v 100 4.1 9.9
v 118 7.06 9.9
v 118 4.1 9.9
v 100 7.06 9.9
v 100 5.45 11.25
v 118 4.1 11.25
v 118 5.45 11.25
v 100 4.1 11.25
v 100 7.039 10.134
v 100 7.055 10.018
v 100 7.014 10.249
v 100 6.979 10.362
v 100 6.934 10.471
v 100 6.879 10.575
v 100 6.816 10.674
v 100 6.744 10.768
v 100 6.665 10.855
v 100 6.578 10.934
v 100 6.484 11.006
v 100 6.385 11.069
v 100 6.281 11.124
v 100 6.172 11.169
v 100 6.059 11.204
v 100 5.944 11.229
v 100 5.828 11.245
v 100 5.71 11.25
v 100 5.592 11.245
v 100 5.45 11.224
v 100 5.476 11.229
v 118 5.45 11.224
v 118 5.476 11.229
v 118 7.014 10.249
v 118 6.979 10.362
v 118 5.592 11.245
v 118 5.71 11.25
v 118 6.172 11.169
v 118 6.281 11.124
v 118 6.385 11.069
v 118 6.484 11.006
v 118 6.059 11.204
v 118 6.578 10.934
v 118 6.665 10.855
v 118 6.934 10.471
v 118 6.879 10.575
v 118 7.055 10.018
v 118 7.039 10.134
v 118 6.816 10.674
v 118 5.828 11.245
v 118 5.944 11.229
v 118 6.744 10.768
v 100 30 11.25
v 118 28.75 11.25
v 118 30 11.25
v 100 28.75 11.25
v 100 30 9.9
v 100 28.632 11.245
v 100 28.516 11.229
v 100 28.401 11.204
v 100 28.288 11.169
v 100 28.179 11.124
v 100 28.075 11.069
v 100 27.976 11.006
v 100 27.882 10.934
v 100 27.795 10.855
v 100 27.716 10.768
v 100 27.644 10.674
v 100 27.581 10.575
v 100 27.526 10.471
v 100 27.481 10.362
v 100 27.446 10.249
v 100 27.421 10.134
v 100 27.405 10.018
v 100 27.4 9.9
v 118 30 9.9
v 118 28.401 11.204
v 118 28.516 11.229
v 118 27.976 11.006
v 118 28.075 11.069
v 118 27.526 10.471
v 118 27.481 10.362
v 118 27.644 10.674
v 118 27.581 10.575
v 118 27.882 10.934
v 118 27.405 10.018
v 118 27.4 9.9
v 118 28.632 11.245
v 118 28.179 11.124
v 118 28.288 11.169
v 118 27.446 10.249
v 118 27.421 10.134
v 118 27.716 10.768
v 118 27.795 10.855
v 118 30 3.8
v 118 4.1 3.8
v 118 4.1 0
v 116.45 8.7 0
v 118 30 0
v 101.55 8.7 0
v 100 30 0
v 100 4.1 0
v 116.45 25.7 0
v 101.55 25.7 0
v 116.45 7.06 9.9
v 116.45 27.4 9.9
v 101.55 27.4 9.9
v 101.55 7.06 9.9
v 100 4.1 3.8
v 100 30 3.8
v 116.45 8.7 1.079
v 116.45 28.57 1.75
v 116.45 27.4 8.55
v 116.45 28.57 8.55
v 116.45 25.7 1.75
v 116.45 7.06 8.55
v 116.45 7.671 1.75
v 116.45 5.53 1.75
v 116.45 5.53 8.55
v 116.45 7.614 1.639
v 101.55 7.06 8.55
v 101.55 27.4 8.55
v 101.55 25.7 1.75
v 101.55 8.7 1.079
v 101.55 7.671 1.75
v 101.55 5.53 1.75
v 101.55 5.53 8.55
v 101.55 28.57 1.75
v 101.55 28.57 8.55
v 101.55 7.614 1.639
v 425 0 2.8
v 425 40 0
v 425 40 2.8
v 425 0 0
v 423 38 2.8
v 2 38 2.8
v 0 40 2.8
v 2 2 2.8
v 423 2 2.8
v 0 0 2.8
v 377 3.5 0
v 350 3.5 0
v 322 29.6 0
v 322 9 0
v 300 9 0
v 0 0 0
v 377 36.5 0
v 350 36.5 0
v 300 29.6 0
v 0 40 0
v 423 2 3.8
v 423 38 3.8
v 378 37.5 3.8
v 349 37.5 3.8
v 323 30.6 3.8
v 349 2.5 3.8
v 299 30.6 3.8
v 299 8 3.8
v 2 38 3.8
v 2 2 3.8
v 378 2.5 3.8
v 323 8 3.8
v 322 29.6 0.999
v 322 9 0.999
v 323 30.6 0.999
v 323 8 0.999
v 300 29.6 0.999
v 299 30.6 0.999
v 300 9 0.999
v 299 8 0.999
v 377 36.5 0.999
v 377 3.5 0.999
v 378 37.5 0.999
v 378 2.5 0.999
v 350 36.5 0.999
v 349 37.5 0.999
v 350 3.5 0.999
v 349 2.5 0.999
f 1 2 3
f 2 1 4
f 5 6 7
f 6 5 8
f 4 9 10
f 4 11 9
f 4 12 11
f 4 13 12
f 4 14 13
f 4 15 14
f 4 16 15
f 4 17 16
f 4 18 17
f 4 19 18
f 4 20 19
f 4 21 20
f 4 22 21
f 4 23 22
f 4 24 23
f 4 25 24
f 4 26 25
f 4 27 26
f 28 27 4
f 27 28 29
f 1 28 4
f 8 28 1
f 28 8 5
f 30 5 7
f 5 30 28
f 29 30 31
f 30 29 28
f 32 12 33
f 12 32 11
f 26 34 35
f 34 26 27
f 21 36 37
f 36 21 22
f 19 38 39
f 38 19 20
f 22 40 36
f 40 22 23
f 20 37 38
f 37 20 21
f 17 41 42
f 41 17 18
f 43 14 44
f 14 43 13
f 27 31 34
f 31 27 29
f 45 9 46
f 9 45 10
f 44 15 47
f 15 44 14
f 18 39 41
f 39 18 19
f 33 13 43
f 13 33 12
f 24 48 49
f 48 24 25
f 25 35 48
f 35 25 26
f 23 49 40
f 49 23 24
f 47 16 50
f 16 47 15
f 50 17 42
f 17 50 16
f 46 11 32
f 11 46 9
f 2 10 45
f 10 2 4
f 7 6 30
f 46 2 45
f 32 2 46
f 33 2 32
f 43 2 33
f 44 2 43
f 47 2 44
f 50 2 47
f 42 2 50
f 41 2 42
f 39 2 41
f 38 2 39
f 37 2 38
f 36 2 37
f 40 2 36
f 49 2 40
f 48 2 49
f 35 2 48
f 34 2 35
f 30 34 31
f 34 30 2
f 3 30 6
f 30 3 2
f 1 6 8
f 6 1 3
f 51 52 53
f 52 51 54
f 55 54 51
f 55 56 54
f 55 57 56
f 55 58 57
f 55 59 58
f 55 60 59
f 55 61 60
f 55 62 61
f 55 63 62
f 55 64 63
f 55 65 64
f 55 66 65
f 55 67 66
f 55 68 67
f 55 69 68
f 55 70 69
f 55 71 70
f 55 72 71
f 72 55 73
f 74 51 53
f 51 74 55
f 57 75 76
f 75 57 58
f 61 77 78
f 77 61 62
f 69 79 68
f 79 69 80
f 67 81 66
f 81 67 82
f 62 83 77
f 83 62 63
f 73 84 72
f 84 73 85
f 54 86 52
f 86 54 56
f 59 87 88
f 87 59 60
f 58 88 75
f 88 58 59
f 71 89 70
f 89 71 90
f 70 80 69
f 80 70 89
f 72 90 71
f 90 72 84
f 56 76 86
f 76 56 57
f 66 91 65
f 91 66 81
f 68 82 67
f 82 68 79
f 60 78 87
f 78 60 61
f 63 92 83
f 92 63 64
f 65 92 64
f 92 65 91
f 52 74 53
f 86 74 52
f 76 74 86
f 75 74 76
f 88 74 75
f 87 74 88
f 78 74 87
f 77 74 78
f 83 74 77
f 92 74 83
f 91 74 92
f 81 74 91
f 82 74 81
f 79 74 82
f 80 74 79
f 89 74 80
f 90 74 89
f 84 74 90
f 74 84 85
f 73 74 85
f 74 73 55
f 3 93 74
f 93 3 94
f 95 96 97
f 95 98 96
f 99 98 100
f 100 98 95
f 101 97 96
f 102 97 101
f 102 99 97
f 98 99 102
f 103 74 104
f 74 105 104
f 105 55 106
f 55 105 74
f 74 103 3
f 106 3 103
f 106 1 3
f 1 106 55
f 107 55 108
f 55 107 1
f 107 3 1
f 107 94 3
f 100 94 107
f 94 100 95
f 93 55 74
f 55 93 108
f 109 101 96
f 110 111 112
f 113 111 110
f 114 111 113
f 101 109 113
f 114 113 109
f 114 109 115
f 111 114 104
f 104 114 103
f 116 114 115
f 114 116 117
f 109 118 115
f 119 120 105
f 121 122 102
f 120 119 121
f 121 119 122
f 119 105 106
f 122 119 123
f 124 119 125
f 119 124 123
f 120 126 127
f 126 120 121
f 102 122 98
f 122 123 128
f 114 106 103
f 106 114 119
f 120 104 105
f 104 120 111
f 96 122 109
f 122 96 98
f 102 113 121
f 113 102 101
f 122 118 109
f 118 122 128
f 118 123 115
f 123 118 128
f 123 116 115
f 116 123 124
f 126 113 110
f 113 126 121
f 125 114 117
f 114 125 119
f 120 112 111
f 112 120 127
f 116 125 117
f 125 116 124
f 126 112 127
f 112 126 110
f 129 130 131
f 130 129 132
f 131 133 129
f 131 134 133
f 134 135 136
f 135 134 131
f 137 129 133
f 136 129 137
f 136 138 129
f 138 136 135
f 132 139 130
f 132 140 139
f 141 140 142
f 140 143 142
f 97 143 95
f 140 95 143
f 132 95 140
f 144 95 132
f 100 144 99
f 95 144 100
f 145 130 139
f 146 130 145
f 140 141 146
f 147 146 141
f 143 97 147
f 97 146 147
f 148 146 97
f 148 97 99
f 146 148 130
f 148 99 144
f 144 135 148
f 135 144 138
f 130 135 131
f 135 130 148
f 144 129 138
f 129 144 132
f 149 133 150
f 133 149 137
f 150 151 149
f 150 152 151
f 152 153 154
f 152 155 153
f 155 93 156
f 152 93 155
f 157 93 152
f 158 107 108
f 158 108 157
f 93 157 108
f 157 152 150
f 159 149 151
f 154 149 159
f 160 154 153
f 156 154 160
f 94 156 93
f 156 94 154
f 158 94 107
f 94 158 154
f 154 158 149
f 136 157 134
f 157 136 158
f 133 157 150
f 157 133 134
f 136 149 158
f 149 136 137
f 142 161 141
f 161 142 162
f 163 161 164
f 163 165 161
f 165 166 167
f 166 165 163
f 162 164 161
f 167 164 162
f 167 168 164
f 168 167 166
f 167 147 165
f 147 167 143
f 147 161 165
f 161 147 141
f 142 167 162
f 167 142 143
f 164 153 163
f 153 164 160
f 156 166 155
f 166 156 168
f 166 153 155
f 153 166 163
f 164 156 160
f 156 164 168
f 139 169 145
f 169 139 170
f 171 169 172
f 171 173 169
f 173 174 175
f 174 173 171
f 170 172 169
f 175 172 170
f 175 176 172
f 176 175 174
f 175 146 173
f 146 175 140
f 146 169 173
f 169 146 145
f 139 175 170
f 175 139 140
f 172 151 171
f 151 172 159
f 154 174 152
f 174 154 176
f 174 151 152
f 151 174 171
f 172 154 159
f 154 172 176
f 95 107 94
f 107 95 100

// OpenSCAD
// file: rj45_keystone_receiver.scad
$fa = 5;
$fs = 0.01;

/*
 * The RJ45 keystone receiver
 */
// adjustments to original
clip_adjustment =0.9;   // some keystone jacks fit too tight so we add a little here
exterior_slot_adjustment = 3.4; // original 2.6

// the following have not been changed
outside_width=18;
outside_height=25 + clip_adjustment;
outside_depth=9.9;
outside_wall = 1.55;
inside_width = outside_width-(outside_wall*2);
inside_height= outside_height-5.56; //19.44;
inside_cutout_height = outside_height - 2.86;
inside_cutout_depth = outside_depth - 3.1;
exterior_slot = 7.9;
exterior_notch_height = 17.0;
exterior_notch_depth = outside_depth - 2.7;
exterior_slot_height = outside_height - 8.75;
top_clip_bar = outside_height - 2.96 ;

module rj45Receiver()
{
    difference() {
        cube([outside_width, outside_height, outside_depth]);
        translate([outside_wall, 2.6, -0.001]) {
            cube([inside_width, inside_height, exterior_slot]);
        }
        // exterior slot
        translate([outside_wall, exterior_slot_adjustment+clip_adjustment,
                exterior_slot]) {
            cube([inside_width, exterior_notch_height, 2.001]);
        }
        // exterior_notch
        translate([outside_wall, exterior_notch_height+clip_adjustment,
                exterior_notch_depth]) {
            rotate(v=[1, 0, 0], a=-27.3) 
                cube([inside_width, 3.5, 3]);
        }
        // interior cutout
        translate([outside_wall, 1.43, 1.35]) {
            cube([inside_width, inside_cutout_height, inside_cutout_depth]);
        }
    }
    // top clip bar
    translate([0, top_clip_bar, -1.35]) {
        intersection() {
            cube([outside_width, 2.96, 1.35]);
            union() {
                translate([0, 1.61, 0]) {
                    cube([20.42, 1.61, 1.35]);
                }
                translate([0, 1.35, 1.35]) {
                    rotate(v=[0, 1, 0], a=90) {
                        cylinder(h=20.42, r=1.35);
                    }
                }
            }
        }
    }
    // bottom clip bar
    translate([0, 0, -1.35]) {
        intersection() {
            cube([outside_width, outside_wall*2, 1.35]);
            union() {
                cube([20.42, 1.25, 1.35]);
                translate([0, 1.25, 1.35]) {
                    rotate(v=[0, 1, 0], a=90) {
                        cylinder(h=20.42, r=1.35);
                    }
                }
            }
        }
    }
}

// these are sometimes needed when fitting the jacks into projects
function rj45_width() = outside_width;
function rj45_height() = outside_height;
function rj45_depth() = outside_depth;

 // So a hole can be cut for the keystone socket
module rj45VolumeBlock() {
    cube([outside_width, outside_height, outside_depth]);
}

rotate([0,180,0]) 
    rj45Receiver();
// main file
use <rj45_keystone_receiver.scad>;

color("red")
rotate([180, 0, 0])
    translate([100, -30, -9.9])
    rj45Receiver();

module backplate() {
    cube([425, 40, 2.8]);
    translate([2, 2, 0])
        cube([421, 36, 3.8]);
}

module power() {
    cube([27, 33, 1]);
    translate([-1, -1, 1])
        cube([29, 35, 10]);
}

module switch() {
    cube([22, 20.6, 1]);
    translate([-1, -1, 1])
        cube([24, 22.6, 10]);
}

difference() {
    backplate();

    // keystone
    translate([100, 4.1, -0.001])
        rj45VolumeBlock();

    translate([350, 3.5, -0.001])
        power();

    translate([300, 9, -0.001])
        switch();
}
